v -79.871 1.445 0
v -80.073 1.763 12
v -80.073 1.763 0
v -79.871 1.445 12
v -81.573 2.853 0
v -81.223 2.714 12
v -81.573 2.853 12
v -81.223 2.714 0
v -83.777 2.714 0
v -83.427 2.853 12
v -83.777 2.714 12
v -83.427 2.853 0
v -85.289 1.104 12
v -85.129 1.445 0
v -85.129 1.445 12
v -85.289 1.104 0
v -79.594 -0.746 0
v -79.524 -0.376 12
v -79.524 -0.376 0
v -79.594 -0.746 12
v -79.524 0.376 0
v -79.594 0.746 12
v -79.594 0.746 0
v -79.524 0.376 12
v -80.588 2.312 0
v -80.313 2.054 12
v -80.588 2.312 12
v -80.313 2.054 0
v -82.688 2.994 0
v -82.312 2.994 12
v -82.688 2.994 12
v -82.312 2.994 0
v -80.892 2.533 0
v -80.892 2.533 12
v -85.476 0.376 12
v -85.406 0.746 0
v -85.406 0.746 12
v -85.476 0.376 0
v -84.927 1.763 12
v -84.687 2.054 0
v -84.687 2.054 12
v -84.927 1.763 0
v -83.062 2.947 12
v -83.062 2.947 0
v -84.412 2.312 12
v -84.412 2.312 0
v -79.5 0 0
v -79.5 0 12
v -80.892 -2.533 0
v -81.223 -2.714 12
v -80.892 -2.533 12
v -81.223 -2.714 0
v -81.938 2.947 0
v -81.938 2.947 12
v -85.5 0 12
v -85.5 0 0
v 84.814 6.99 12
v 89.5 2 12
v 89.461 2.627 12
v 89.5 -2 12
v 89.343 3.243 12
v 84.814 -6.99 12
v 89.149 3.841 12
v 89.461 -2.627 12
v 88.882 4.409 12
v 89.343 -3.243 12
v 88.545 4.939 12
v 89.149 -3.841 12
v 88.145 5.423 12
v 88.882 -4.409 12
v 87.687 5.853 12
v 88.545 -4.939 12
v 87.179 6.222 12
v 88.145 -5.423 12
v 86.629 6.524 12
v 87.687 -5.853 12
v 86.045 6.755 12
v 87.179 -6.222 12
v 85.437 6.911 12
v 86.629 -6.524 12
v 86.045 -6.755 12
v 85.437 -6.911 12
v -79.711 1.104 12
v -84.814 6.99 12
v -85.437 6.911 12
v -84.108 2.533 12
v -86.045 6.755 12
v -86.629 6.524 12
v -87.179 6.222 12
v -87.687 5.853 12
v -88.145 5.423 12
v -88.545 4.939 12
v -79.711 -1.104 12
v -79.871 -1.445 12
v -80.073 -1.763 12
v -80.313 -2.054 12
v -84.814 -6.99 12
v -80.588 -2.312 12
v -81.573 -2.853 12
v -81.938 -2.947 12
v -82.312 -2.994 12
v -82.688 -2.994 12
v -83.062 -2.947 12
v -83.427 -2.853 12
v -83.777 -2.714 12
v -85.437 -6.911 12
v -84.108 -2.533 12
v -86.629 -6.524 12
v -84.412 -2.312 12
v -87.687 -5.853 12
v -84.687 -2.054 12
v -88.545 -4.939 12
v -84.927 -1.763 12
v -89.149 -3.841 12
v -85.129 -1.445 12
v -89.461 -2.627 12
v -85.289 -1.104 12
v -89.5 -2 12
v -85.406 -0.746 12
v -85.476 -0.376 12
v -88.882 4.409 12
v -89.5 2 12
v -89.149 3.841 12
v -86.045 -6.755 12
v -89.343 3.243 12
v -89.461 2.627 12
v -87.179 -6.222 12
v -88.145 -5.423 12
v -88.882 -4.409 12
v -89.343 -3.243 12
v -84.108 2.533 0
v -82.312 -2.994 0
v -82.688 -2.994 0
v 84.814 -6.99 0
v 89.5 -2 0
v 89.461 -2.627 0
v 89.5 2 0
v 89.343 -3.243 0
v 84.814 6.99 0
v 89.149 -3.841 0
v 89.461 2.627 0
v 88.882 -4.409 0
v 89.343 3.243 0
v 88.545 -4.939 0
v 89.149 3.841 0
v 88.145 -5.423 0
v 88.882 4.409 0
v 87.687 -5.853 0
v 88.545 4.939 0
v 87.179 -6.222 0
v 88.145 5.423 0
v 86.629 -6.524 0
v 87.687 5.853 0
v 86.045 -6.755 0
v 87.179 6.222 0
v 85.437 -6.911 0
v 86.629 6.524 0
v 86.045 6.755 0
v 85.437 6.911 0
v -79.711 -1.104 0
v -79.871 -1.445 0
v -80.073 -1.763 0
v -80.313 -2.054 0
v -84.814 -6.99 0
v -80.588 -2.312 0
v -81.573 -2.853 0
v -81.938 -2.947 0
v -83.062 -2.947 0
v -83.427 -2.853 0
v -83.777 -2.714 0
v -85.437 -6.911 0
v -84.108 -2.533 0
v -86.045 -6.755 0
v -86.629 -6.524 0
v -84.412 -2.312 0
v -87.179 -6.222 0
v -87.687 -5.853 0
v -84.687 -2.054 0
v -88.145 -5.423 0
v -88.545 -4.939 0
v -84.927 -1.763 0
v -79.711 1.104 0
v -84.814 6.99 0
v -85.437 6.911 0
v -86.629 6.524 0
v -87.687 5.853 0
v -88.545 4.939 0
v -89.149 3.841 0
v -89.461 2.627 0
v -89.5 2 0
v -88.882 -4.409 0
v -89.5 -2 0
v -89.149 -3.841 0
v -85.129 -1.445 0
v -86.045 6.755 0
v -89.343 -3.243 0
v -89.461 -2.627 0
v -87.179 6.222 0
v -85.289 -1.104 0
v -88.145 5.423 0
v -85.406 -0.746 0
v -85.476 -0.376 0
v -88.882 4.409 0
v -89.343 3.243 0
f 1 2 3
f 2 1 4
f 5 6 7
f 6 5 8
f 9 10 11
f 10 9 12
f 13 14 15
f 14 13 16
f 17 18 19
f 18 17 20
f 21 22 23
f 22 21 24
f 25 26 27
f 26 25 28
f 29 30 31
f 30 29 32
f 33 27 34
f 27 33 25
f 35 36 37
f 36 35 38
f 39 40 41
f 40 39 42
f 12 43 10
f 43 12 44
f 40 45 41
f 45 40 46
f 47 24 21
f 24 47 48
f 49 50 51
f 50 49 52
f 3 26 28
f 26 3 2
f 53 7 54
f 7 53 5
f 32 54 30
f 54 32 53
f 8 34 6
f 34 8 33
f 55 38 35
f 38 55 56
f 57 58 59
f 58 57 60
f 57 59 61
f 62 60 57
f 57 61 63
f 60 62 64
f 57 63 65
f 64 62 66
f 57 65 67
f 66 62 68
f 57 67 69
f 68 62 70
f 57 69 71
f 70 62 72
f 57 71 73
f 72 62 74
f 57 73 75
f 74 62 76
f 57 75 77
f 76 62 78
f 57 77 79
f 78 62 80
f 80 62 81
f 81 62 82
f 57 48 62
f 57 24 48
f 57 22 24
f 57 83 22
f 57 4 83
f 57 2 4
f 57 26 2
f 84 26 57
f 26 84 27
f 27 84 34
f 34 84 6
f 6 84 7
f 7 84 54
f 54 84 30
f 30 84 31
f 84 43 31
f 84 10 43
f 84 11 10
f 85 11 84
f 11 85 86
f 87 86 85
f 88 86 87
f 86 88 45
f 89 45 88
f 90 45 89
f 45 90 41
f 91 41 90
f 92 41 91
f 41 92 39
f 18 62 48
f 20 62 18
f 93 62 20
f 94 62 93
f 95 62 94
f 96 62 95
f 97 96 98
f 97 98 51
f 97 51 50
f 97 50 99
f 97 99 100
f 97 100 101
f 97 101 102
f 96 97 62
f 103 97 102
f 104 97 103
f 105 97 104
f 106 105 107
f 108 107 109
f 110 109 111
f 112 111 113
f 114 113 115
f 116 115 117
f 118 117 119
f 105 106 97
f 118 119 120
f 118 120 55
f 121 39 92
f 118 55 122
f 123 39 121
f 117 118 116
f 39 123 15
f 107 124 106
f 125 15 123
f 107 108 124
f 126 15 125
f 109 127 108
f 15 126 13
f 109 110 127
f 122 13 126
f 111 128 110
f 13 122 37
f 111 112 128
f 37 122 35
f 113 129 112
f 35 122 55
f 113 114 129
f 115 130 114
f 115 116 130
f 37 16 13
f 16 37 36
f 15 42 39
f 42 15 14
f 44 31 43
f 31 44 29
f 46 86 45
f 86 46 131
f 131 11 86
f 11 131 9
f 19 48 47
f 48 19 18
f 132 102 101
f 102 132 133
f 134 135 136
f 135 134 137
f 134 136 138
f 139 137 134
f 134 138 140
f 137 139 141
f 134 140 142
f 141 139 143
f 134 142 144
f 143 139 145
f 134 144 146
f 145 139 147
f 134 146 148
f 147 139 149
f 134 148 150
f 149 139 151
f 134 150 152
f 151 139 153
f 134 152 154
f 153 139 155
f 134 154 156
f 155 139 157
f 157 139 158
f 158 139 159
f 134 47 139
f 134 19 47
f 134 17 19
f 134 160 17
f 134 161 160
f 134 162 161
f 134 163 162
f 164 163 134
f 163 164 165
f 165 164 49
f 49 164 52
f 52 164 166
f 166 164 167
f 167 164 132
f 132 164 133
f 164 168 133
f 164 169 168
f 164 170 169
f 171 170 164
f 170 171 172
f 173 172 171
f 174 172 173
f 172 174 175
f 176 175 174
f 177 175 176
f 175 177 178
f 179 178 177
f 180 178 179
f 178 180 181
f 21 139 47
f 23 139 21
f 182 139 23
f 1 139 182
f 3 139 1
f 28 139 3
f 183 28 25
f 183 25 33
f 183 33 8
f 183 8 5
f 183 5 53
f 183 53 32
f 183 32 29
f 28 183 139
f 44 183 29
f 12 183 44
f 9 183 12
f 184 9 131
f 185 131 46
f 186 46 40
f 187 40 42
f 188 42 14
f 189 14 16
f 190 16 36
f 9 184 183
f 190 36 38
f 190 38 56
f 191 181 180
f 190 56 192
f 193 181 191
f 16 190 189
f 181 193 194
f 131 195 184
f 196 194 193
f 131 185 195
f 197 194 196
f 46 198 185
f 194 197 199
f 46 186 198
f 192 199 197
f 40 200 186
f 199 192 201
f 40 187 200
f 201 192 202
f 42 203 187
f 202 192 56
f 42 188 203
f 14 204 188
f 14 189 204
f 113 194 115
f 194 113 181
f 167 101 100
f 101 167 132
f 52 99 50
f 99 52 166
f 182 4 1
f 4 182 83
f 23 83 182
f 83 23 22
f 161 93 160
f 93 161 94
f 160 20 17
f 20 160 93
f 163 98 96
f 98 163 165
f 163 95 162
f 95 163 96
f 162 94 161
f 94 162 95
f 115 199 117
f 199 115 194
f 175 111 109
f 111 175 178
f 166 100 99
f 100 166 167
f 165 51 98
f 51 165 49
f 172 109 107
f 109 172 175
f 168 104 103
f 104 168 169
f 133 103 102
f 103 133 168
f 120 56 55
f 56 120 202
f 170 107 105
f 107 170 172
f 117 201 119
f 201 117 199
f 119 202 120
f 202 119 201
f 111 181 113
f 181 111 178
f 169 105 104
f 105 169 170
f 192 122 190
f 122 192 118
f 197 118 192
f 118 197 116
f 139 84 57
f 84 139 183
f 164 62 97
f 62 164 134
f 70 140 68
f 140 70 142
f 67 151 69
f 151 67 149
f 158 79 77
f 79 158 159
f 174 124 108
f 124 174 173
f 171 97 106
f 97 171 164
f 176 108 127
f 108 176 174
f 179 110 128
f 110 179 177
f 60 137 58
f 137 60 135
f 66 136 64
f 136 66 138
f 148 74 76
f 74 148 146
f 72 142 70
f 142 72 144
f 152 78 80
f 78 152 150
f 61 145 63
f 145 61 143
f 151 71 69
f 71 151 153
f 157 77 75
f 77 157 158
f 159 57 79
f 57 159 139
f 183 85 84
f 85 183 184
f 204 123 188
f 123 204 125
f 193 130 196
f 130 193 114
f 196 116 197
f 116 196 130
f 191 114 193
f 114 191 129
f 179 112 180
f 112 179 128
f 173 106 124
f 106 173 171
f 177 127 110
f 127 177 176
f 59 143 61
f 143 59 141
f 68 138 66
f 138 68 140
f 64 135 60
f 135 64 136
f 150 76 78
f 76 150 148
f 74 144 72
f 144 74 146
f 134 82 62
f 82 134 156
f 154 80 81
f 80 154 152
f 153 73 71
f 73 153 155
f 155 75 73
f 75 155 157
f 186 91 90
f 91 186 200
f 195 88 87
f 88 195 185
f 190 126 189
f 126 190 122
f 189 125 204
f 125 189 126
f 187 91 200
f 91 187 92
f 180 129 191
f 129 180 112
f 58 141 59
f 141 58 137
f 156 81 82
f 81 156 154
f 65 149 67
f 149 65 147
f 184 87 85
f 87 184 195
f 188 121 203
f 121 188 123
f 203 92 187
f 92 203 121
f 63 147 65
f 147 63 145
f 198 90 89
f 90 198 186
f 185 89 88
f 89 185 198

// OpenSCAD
$fn = 50;


difference() {
	union() {
		hull() {
			translate(v = [-84.5000000000, 2.0000000000, 0]) {
				cylinder(h = 12, r = 5);
			}
			translate(v = [84.5000000000, 2.0000000000, 0]) {
				cylinder(h = 12, r = 5);
			}
			translate(v = [-84.5000000000, -2.0000000000, 0]) {
				cylinder(h = 12, r = 5);
			}
			translate(v = [84.5000000000, -2.0000000000, 0]) {
				cylinder(h = 12, r = 5);
			}
		}
	}
	union() {
		translate(v = [-82.5000000000, 0.0000000000, 0]) {
			cylinder(h = 12, r = 3.0000000000);
		}
		translate(v = [-82.5000000000, 0.0000000000, 0]) {
			cylinder(h = 12, r = 1.5000000000);
		}
		translate(v = [-82.5000000000, 0.0000000000, 0]) {
			cylinder(h = 12, r = 1.5000000000);
		}
		translate(v = [-82.5000000000, 0.0000000000, 0]) {
			cylinder(h = 12, r = 1.5000000000);
		}
	}
}
